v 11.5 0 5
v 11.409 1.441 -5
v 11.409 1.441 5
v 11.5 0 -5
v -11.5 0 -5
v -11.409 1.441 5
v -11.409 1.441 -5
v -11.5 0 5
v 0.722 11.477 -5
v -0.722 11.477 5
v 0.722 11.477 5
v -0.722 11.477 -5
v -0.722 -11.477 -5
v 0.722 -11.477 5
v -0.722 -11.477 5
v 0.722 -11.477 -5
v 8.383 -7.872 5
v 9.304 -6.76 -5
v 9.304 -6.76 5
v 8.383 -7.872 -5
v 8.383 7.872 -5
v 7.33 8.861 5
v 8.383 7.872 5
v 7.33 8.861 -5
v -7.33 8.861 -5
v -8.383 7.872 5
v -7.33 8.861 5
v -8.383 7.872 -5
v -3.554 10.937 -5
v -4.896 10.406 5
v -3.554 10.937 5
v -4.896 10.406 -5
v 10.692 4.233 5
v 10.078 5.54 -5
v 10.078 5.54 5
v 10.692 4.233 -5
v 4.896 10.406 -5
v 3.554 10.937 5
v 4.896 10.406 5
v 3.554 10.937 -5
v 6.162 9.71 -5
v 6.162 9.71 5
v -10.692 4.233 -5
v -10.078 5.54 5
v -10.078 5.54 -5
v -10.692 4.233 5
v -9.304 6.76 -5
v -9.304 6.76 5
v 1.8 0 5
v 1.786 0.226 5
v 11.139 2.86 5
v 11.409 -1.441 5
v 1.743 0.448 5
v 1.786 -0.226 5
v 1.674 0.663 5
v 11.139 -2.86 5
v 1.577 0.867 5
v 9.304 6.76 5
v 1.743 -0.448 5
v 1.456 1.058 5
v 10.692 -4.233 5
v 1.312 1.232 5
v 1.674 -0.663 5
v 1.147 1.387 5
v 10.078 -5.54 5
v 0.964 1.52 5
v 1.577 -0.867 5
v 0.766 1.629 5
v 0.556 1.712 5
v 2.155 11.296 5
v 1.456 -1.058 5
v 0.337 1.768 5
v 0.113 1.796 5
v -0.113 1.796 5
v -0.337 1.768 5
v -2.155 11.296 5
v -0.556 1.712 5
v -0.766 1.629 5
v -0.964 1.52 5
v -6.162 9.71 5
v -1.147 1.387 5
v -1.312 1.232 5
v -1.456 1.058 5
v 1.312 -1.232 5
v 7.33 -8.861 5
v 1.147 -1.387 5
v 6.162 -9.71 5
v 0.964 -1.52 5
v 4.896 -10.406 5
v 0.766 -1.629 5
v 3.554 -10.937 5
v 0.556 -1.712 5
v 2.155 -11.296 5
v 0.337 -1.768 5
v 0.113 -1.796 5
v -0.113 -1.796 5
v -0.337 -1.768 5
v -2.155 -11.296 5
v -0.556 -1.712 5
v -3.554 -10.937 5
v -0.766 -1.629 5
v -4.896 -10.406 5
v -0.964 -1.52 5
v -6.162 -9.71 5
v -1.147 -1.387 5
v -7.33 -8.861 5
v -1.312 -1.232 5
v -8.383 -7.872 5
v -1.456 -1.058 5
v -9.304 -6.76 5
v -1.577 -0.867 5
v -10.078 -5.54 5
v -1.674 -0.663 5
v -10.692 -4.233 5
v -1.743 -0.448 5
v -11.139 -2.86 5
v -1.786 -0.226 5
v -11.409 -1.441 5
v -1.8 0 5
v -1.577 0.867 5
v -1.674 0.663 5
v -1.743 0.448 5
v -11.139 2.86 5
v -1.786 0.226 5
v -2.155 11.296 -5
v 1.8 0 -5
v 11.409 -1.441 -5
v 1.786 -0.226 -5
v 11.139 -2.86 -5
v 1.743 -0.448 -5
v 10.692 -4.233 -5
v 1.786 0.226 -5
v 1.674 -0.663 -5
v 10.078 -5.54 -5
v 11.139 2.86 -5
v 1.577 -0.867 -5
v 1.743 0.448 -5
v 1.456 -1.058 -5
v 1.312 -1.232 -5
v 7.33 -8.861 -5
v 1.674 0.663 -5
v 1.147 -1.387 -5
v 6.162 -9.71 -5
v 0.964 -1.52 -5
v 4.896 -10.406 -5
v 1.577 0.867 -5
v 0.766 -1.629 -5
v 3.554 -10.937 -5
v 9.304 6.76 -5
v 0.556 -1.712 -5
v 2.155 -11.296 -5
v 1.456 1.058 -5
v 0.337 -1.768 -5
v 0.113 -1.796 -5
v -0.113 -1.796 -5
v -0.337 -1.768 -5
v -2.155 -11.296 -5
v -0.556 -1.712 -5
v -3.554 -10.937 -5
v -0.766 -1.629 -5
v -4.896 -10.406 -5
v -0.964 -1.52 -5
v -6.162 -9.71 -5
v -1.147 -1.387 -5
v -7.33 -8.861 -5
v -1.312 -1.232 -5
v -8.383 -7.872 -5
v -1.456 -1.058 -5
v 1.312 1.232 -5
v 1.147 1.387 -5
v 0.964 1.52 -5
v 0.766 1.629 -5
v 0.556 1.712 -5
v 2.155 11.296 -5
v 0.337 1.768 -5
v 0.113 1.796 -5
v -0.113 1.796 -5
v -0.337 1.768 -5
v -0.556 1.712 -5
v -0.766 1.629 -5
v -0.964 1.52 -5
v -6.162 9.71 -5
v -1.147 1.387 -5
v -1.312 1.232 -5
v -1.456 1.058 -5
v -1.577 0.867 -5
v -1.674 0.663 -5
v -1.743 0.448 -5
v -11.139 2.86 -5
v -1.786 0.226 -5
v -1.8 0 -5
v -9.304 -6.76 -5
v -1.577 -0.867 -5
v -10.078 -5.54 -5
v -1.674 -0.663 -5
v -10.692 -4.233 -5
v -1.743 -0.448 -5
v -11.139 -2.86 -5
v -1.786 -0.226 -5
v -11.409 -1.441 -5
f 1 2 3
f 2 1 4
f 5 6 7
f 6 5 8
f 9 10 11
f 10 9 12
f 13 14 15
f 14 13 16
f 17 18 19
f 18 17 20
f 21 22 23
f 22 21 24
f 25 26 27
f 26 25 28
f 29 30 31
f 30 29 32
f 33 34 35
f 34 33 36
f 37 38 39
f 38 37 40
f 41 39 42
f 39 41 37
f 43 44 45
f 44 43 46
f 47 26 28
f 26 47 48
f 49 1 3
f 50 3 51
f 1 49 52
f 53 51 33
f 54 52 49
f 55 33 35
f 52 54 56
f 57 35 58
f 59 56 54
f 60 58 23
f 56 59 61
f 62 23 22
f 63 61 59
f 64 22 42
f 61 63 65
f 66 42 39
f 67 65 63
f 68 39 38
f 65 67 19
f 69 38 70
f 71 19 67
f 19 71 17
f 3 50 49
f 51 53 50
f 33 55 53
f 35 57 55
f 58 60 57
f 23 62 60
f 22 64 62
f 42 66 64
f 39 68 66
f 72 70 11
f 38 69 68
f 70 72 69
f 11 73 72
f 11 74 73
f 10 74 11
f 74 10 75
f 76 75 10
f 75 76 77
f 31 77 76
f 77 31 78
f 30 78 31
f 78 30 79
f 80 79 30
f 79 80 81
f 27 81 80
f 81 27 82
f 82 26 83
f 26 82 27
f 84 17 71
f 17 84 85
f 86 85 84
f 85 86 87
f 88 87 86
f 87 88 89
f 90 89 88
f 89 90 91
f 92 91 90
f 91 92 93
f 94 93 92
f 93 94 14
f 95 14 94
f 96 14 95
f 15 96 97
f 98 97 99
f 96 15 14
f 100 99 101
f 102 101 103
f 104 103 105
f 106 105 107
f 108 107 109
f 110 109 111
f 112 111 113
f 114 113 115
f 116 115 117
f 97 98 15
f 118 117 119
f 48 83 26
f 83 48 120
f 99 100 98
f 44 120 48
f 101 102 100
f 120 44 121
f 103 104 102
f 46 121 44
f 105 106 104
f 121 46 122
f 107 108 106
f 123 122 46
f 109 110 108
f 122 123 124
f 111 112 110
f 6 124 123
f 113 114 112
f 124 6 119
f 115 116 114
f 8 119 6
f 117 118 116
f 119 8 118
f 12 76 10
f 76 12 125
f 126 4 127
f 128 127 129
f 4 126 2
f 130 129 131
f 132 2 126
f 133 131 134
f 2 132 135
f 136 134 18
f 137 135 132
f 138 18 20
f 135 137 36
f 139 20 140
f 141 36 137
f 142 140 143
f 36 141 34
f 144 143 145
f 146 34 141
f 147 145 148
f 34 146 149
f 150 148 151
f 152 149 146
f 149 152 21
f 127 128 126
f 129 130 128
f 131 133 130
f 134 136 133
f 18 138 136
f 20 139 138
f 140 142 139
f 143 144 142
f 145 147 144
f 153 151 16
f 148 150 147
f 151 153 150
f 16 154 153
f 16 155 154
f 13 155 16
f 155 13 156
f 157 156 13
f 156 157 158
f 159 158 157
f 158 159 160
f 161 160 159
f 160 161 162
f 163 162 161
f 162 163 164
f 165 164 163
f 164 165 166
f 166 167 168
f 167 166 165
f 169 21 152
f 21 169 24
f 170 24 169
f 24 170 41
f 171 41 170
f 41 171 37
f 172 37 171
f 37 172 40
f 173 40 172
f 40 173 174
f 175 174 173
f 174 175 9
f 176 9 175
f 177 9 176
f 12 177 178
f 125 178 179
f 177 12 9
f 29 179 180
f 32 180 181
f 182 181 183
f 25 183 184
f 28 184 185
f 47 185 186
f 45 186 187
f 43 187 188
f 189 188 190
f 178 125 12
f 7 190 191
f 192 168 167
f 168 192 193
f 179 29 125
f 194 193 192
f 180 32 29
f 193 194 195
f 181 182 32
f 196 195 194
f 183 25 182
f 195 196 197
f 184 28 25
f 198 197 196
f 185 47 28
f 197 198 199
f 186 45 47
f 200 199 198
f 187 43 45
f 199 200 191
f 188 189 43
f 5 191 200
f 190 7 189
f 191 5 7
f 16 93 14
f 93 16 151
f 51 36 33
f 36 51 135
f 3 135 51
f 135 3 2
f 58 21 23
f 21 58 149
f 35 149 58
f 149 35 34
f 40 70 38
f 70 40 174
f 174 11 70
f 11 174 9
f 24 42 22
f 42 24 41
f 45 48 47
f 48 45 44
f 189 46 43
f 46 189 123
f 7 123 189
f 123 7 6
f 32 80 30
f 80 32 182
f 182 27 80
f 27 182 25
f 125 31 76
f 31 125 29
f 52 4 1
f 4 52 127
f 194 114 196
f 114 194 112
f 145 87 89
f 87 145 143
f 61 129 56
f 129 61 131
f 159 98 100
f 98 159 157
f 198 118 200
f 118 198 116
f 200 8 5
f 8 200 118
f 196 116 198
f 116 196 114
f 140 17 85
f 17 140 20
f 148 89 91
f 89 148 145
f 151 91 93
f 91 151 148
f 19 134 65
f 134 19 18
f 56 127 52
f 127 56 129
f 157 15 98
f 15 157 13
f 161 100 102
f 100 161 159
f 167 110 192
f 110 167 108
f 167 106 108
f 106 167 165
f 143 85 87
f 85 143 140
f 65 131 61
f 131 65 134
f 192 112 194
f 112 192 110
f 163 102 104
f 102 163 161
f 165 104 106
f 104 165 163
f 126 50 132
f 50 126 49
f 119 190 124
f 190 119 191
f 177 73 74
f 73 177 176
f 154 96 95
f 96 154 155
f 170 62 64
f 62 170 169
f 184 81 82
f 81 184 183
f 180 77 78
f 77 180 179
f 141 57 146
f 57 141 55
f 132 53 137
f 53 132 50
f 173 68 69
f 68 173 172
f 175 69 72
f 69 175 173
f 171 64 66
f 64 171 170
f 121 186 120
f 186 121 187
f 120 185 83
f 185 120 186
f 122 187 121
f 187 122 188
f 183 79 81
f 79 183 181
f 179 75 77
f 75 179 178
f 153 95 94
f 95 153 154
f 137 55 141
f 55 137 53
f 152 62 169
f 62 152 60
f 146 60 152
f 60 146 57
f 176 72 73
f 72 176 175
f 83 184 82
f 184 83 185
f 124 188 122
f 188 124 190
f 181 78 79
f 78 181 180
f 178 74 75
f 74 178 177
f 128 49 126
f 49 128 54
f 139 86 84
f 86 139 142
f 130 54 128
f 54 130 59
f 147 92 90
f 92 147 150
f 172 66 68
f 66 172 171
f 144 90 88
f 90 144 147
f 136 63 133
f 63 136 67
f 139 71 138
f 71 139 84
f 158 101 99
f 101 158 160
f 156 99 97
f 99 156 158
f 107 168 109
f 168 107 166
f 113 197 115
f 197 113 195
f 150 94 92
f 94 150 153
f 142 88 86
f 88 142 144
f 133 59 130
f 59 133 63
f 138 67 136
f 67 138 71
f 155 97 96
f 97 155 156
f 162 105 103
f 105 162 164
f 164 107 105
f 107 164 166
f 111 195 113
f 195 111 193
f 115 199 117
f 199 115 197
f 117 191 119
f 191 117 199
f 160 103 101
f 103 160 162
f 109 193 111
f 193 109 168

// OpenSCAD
$fn = 50;


difference() {
	union() {
		translate(v = [0, 0, -5.0000000000]) {
			cylinder(h = 10, r = 11.5000000000);
		}
	}
	union() {
		translate(v = [0, 0, -100.0000000000]) {
			cylinder(h = 200, r = 1.8000000000);
		}
	}
}
